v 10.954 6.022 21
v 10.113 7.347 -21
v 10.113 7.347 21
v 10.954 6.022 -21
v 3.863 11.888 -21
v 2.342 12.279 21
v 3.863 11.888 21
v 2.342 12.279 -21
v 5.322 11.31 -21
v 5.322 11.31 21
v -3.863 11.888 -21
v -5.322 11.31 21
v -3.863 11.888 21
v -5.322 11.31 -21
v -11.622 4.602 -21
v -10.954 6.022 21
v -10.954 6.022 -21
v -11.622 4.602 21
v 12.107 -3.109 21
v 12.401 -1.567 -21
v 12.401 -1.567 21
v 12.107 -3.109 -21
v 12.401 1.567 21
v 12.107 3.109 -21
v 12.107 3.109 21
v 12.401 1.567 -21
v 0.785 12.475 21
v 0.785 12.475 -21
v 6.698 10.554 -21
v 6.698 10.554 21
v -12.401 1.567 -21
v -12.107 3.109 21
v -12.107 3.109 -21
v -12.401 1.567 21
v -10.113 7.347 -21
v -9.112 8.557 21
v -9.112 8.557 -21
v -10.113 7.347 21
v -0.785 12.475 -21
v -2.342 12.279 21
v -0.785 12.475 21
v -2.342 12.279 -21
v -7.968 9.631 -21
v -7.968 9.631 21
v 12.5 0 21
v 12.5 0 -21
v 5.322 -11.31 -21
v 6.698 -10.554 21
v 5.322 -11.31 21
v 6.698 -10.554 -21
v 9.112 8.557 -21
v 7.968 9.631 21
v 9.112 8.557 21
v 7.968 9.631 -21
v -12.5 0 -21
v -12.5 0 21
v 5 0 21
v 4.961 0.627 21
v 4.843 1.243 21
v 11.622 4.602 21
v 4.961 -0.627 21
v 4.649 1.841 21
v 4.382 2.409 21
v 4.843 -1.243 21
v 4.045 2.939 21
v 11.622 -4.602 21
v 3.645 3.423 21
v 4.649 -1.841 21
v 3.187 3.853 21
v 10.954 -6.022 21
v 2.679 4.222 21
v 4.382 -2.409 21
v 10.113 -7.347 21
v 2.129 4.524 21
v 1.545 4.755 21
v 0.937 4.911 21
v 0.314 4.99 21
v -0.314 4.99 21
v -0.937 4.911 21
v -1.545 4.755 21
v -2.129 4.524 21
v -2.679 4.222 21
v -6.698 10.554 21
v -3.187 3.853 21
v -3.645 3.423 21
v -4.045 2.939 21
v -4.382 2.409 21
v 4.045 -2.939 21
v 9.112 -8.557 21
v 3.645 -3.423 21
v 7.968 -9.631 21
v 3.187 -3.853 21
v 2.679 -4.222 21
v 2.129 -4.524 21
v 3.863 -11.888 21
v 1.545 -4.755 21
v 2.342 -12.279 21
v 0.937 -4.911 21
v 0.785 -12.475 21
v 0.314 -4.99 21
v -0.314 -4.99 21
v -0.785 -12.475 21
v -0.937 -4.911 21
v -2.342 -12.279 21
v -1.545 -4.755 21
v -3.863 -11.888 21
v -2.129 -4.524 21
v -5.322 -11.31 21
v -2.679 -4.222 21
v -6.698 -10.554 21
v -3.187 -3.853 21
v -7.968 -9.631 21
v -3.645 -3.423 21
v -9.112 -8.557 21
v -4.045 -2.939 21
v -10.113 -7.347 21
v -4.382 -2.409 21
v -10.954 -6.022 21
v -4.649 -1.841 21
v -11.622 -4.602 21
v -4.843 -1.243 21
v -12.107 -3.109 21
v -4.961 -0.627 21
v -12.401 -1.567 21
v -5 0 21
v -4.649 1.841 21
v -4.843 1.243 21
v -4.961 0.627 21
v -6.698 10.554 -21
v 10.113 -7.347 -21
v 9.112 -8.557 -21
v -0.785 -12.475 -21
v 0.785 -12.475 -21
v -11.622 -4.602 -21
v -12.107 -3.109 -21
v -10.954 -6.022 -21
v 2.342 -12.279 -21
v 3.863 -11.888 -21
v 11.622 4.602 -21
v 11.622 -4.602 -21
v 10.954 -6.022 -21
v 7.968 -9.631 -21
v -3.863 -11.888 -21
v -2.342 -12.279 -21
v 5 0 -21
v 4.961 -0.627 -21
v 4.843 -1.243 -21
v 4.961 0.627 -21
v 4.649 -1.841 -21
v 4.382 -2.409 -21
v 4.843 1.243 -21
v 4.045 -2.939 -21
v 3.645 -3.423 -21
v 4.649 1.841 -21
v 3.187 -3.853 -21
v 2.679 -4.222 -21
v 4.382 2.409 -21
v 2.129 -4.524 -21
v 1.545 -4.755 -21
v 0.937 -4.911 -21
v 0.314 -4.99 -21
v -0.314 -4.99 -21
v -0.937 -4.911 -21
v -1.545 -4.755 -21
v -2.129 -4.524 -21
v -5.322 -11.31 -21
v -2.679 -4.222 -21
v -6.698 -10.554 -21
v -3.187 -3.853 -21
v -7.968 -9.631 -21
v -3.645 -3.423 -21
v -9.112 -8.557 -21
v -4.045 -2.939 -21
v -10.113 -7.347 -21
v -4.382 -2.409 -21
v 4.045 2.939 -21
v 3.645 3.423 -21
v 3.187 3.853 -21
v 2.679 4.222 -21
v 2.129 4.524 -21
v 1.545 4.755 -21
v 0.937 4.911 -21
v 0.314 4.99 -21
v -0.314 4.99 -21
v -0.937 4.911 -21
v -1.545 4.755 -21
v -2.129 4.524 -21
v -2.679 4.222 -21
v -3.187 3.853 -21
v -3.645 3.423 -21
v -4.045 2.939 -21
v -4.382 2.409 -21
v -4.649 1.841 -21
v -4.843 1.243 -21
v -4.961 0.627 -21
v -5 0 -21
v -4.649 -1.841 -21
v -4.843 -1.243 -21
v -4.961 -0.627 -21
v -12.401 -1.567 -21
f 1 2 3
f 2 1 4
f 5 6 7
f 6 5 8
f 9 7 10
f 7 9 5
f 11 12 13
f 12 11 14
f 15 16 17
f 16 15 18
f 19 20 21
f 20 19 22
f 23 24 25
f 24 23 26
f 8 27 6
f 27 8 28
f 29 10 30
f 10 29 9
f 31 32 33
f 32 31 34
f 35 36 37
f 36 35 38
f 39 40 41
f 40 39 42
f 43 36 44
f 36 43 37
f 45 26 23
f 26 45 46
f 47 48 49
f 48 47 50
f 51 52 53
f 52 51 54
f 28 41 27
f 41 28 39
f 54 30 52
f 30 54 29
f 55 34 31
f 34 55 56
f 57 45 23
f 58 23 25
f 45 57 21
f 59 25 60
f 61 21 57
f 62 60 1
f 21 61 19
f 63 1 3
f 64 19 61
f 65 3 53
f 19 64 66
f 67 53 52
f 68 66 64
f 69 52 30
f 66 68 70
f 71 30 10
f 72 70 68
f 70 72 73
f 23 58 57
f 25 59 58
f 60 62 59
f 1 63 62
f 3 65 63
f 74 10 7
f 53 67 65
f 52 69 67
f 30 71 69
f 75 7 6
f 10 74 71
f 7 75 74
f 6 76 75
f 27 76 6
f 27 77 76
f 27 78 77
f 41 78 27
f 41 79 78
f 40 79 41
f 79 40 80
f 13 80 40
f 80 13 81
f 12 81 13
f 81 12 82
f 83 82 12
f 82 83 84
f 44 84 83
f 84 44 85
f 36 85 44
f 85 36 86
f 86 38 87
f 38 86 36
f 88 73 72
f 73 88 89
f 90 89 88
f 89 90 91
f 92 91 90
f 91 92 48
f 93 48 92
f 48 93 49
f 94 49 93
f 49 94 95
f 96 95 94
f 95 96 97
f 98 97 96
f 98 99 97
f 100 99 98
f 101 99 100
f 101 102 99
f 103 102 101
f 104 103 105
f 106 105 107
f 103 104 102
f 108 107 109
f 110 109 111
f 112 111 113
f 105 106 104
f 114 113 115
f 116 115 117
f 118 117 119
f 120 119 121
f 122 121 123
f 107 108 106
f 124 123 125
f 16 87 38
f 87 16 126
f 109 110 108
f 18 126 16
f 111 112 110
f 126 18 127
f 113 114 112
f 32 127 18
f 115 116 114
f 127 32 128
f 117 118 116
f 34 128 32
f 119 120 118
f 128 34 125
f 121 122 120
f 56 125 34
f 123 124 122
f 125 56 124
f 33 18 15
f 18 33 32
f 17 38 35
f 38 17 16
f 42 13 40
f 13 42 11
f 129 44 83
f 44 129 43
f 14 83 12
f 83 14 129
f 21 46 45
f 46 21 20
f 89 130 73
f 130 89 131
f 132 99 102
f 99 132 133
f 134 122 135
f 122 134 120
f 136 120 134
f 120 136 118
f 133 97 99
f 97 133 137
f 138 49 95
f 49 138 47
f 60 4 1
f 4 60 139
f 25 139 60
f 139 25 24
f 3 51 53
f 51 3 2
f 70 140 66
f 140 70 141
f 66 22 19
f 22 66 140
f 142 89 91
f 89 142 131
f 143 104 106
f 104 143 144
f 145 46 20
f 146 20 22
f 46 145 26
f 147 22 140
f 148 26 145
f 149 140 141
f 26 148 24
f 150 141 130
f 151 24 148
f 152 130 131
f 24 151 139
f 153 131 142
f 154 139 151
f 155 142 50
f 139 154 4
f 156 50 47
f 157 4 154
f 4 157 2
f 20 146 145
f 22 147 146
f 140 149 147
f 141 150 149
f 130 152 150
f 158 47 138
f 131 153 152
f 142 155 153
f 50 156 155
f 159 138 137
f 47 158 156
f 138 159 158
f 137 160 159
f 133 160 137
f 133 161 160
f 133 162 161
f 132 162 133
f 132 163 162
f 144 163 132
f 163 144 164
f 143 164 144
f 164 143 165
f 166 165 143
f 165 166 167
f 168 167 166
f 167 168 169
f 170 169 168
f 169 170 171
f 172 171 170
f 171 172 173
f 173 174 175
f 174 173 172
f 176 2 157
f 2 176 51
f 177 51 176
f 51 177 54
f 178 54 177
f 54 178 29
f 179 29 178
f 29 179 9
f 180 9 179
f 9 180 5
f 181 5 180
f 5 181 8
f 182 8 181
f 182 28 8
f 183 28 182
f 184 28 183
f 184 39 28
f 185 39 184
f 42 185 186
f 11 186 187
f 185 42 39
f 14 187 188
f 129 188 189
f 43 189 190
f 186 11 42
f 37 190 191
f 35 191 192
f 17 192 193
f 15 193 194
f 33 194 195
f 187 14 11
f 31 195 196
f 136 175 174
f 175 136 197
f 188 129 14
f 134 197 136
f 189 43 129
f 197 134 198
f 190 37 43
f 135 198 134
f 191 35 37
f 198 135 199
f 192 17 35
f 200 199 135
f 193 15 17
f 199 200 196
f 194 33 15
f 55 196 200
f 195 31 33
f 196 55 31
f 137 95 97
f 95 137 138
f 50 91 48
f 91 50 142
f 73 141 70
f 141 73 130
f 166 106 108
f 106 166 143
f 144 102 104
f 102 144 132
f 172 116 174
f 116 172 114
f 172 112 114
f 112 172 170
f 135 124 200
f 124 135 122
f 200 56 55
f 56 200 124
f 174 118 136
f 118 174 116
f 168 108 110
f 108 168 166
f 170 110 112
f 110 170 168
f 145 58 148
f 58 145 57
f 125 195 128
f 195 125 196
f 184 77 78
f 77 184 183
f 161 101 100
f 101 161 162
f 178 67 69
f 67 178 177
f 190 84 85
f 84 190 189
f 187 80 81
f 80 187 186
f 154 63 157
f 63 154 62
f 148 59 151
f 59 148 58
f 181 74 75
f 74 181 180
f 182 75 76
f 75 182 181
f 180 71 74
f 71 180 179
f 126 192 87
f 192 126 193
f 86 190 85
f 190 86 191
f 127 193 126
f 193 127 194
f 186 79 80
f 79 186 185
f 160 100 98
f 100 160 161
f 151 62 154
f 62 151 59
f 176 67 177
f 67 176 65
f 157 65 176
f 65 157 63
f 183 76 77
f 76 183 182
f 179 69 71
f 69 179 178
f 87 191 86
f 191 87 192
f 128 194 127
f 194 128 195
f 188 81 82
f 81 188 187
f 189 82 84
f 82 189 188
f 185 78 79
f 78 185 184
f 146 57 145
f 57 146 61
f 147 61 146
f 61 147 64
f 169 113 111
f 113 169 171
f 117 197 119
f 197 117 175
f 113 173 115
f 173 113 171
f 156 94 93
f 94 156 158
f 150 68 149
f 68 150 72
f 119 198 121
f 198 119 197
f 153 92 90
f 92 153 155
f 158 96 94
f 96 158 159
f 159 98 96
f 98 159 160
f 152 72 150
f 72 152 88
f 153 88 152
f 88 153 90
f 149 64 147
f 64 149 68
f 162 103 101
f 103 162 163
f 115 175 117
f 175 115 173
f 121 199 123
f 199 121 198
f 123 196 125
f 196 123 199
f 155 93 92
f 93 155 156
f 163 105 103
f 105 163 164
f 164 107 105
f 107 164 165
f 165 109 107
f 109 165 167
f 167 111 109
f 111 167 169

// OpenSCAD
$fn = 50;


difference() {
	union() {
		translate(v = [0, 0, -21.0000000000]) {
			cylinder(h = 42, r = 12.5000000000);
		}
	}
	union() {
		translate(v = [0, 0, -100.0000000000]) {
			cylinder(h = 200, r = 5);
		}
	}
}
